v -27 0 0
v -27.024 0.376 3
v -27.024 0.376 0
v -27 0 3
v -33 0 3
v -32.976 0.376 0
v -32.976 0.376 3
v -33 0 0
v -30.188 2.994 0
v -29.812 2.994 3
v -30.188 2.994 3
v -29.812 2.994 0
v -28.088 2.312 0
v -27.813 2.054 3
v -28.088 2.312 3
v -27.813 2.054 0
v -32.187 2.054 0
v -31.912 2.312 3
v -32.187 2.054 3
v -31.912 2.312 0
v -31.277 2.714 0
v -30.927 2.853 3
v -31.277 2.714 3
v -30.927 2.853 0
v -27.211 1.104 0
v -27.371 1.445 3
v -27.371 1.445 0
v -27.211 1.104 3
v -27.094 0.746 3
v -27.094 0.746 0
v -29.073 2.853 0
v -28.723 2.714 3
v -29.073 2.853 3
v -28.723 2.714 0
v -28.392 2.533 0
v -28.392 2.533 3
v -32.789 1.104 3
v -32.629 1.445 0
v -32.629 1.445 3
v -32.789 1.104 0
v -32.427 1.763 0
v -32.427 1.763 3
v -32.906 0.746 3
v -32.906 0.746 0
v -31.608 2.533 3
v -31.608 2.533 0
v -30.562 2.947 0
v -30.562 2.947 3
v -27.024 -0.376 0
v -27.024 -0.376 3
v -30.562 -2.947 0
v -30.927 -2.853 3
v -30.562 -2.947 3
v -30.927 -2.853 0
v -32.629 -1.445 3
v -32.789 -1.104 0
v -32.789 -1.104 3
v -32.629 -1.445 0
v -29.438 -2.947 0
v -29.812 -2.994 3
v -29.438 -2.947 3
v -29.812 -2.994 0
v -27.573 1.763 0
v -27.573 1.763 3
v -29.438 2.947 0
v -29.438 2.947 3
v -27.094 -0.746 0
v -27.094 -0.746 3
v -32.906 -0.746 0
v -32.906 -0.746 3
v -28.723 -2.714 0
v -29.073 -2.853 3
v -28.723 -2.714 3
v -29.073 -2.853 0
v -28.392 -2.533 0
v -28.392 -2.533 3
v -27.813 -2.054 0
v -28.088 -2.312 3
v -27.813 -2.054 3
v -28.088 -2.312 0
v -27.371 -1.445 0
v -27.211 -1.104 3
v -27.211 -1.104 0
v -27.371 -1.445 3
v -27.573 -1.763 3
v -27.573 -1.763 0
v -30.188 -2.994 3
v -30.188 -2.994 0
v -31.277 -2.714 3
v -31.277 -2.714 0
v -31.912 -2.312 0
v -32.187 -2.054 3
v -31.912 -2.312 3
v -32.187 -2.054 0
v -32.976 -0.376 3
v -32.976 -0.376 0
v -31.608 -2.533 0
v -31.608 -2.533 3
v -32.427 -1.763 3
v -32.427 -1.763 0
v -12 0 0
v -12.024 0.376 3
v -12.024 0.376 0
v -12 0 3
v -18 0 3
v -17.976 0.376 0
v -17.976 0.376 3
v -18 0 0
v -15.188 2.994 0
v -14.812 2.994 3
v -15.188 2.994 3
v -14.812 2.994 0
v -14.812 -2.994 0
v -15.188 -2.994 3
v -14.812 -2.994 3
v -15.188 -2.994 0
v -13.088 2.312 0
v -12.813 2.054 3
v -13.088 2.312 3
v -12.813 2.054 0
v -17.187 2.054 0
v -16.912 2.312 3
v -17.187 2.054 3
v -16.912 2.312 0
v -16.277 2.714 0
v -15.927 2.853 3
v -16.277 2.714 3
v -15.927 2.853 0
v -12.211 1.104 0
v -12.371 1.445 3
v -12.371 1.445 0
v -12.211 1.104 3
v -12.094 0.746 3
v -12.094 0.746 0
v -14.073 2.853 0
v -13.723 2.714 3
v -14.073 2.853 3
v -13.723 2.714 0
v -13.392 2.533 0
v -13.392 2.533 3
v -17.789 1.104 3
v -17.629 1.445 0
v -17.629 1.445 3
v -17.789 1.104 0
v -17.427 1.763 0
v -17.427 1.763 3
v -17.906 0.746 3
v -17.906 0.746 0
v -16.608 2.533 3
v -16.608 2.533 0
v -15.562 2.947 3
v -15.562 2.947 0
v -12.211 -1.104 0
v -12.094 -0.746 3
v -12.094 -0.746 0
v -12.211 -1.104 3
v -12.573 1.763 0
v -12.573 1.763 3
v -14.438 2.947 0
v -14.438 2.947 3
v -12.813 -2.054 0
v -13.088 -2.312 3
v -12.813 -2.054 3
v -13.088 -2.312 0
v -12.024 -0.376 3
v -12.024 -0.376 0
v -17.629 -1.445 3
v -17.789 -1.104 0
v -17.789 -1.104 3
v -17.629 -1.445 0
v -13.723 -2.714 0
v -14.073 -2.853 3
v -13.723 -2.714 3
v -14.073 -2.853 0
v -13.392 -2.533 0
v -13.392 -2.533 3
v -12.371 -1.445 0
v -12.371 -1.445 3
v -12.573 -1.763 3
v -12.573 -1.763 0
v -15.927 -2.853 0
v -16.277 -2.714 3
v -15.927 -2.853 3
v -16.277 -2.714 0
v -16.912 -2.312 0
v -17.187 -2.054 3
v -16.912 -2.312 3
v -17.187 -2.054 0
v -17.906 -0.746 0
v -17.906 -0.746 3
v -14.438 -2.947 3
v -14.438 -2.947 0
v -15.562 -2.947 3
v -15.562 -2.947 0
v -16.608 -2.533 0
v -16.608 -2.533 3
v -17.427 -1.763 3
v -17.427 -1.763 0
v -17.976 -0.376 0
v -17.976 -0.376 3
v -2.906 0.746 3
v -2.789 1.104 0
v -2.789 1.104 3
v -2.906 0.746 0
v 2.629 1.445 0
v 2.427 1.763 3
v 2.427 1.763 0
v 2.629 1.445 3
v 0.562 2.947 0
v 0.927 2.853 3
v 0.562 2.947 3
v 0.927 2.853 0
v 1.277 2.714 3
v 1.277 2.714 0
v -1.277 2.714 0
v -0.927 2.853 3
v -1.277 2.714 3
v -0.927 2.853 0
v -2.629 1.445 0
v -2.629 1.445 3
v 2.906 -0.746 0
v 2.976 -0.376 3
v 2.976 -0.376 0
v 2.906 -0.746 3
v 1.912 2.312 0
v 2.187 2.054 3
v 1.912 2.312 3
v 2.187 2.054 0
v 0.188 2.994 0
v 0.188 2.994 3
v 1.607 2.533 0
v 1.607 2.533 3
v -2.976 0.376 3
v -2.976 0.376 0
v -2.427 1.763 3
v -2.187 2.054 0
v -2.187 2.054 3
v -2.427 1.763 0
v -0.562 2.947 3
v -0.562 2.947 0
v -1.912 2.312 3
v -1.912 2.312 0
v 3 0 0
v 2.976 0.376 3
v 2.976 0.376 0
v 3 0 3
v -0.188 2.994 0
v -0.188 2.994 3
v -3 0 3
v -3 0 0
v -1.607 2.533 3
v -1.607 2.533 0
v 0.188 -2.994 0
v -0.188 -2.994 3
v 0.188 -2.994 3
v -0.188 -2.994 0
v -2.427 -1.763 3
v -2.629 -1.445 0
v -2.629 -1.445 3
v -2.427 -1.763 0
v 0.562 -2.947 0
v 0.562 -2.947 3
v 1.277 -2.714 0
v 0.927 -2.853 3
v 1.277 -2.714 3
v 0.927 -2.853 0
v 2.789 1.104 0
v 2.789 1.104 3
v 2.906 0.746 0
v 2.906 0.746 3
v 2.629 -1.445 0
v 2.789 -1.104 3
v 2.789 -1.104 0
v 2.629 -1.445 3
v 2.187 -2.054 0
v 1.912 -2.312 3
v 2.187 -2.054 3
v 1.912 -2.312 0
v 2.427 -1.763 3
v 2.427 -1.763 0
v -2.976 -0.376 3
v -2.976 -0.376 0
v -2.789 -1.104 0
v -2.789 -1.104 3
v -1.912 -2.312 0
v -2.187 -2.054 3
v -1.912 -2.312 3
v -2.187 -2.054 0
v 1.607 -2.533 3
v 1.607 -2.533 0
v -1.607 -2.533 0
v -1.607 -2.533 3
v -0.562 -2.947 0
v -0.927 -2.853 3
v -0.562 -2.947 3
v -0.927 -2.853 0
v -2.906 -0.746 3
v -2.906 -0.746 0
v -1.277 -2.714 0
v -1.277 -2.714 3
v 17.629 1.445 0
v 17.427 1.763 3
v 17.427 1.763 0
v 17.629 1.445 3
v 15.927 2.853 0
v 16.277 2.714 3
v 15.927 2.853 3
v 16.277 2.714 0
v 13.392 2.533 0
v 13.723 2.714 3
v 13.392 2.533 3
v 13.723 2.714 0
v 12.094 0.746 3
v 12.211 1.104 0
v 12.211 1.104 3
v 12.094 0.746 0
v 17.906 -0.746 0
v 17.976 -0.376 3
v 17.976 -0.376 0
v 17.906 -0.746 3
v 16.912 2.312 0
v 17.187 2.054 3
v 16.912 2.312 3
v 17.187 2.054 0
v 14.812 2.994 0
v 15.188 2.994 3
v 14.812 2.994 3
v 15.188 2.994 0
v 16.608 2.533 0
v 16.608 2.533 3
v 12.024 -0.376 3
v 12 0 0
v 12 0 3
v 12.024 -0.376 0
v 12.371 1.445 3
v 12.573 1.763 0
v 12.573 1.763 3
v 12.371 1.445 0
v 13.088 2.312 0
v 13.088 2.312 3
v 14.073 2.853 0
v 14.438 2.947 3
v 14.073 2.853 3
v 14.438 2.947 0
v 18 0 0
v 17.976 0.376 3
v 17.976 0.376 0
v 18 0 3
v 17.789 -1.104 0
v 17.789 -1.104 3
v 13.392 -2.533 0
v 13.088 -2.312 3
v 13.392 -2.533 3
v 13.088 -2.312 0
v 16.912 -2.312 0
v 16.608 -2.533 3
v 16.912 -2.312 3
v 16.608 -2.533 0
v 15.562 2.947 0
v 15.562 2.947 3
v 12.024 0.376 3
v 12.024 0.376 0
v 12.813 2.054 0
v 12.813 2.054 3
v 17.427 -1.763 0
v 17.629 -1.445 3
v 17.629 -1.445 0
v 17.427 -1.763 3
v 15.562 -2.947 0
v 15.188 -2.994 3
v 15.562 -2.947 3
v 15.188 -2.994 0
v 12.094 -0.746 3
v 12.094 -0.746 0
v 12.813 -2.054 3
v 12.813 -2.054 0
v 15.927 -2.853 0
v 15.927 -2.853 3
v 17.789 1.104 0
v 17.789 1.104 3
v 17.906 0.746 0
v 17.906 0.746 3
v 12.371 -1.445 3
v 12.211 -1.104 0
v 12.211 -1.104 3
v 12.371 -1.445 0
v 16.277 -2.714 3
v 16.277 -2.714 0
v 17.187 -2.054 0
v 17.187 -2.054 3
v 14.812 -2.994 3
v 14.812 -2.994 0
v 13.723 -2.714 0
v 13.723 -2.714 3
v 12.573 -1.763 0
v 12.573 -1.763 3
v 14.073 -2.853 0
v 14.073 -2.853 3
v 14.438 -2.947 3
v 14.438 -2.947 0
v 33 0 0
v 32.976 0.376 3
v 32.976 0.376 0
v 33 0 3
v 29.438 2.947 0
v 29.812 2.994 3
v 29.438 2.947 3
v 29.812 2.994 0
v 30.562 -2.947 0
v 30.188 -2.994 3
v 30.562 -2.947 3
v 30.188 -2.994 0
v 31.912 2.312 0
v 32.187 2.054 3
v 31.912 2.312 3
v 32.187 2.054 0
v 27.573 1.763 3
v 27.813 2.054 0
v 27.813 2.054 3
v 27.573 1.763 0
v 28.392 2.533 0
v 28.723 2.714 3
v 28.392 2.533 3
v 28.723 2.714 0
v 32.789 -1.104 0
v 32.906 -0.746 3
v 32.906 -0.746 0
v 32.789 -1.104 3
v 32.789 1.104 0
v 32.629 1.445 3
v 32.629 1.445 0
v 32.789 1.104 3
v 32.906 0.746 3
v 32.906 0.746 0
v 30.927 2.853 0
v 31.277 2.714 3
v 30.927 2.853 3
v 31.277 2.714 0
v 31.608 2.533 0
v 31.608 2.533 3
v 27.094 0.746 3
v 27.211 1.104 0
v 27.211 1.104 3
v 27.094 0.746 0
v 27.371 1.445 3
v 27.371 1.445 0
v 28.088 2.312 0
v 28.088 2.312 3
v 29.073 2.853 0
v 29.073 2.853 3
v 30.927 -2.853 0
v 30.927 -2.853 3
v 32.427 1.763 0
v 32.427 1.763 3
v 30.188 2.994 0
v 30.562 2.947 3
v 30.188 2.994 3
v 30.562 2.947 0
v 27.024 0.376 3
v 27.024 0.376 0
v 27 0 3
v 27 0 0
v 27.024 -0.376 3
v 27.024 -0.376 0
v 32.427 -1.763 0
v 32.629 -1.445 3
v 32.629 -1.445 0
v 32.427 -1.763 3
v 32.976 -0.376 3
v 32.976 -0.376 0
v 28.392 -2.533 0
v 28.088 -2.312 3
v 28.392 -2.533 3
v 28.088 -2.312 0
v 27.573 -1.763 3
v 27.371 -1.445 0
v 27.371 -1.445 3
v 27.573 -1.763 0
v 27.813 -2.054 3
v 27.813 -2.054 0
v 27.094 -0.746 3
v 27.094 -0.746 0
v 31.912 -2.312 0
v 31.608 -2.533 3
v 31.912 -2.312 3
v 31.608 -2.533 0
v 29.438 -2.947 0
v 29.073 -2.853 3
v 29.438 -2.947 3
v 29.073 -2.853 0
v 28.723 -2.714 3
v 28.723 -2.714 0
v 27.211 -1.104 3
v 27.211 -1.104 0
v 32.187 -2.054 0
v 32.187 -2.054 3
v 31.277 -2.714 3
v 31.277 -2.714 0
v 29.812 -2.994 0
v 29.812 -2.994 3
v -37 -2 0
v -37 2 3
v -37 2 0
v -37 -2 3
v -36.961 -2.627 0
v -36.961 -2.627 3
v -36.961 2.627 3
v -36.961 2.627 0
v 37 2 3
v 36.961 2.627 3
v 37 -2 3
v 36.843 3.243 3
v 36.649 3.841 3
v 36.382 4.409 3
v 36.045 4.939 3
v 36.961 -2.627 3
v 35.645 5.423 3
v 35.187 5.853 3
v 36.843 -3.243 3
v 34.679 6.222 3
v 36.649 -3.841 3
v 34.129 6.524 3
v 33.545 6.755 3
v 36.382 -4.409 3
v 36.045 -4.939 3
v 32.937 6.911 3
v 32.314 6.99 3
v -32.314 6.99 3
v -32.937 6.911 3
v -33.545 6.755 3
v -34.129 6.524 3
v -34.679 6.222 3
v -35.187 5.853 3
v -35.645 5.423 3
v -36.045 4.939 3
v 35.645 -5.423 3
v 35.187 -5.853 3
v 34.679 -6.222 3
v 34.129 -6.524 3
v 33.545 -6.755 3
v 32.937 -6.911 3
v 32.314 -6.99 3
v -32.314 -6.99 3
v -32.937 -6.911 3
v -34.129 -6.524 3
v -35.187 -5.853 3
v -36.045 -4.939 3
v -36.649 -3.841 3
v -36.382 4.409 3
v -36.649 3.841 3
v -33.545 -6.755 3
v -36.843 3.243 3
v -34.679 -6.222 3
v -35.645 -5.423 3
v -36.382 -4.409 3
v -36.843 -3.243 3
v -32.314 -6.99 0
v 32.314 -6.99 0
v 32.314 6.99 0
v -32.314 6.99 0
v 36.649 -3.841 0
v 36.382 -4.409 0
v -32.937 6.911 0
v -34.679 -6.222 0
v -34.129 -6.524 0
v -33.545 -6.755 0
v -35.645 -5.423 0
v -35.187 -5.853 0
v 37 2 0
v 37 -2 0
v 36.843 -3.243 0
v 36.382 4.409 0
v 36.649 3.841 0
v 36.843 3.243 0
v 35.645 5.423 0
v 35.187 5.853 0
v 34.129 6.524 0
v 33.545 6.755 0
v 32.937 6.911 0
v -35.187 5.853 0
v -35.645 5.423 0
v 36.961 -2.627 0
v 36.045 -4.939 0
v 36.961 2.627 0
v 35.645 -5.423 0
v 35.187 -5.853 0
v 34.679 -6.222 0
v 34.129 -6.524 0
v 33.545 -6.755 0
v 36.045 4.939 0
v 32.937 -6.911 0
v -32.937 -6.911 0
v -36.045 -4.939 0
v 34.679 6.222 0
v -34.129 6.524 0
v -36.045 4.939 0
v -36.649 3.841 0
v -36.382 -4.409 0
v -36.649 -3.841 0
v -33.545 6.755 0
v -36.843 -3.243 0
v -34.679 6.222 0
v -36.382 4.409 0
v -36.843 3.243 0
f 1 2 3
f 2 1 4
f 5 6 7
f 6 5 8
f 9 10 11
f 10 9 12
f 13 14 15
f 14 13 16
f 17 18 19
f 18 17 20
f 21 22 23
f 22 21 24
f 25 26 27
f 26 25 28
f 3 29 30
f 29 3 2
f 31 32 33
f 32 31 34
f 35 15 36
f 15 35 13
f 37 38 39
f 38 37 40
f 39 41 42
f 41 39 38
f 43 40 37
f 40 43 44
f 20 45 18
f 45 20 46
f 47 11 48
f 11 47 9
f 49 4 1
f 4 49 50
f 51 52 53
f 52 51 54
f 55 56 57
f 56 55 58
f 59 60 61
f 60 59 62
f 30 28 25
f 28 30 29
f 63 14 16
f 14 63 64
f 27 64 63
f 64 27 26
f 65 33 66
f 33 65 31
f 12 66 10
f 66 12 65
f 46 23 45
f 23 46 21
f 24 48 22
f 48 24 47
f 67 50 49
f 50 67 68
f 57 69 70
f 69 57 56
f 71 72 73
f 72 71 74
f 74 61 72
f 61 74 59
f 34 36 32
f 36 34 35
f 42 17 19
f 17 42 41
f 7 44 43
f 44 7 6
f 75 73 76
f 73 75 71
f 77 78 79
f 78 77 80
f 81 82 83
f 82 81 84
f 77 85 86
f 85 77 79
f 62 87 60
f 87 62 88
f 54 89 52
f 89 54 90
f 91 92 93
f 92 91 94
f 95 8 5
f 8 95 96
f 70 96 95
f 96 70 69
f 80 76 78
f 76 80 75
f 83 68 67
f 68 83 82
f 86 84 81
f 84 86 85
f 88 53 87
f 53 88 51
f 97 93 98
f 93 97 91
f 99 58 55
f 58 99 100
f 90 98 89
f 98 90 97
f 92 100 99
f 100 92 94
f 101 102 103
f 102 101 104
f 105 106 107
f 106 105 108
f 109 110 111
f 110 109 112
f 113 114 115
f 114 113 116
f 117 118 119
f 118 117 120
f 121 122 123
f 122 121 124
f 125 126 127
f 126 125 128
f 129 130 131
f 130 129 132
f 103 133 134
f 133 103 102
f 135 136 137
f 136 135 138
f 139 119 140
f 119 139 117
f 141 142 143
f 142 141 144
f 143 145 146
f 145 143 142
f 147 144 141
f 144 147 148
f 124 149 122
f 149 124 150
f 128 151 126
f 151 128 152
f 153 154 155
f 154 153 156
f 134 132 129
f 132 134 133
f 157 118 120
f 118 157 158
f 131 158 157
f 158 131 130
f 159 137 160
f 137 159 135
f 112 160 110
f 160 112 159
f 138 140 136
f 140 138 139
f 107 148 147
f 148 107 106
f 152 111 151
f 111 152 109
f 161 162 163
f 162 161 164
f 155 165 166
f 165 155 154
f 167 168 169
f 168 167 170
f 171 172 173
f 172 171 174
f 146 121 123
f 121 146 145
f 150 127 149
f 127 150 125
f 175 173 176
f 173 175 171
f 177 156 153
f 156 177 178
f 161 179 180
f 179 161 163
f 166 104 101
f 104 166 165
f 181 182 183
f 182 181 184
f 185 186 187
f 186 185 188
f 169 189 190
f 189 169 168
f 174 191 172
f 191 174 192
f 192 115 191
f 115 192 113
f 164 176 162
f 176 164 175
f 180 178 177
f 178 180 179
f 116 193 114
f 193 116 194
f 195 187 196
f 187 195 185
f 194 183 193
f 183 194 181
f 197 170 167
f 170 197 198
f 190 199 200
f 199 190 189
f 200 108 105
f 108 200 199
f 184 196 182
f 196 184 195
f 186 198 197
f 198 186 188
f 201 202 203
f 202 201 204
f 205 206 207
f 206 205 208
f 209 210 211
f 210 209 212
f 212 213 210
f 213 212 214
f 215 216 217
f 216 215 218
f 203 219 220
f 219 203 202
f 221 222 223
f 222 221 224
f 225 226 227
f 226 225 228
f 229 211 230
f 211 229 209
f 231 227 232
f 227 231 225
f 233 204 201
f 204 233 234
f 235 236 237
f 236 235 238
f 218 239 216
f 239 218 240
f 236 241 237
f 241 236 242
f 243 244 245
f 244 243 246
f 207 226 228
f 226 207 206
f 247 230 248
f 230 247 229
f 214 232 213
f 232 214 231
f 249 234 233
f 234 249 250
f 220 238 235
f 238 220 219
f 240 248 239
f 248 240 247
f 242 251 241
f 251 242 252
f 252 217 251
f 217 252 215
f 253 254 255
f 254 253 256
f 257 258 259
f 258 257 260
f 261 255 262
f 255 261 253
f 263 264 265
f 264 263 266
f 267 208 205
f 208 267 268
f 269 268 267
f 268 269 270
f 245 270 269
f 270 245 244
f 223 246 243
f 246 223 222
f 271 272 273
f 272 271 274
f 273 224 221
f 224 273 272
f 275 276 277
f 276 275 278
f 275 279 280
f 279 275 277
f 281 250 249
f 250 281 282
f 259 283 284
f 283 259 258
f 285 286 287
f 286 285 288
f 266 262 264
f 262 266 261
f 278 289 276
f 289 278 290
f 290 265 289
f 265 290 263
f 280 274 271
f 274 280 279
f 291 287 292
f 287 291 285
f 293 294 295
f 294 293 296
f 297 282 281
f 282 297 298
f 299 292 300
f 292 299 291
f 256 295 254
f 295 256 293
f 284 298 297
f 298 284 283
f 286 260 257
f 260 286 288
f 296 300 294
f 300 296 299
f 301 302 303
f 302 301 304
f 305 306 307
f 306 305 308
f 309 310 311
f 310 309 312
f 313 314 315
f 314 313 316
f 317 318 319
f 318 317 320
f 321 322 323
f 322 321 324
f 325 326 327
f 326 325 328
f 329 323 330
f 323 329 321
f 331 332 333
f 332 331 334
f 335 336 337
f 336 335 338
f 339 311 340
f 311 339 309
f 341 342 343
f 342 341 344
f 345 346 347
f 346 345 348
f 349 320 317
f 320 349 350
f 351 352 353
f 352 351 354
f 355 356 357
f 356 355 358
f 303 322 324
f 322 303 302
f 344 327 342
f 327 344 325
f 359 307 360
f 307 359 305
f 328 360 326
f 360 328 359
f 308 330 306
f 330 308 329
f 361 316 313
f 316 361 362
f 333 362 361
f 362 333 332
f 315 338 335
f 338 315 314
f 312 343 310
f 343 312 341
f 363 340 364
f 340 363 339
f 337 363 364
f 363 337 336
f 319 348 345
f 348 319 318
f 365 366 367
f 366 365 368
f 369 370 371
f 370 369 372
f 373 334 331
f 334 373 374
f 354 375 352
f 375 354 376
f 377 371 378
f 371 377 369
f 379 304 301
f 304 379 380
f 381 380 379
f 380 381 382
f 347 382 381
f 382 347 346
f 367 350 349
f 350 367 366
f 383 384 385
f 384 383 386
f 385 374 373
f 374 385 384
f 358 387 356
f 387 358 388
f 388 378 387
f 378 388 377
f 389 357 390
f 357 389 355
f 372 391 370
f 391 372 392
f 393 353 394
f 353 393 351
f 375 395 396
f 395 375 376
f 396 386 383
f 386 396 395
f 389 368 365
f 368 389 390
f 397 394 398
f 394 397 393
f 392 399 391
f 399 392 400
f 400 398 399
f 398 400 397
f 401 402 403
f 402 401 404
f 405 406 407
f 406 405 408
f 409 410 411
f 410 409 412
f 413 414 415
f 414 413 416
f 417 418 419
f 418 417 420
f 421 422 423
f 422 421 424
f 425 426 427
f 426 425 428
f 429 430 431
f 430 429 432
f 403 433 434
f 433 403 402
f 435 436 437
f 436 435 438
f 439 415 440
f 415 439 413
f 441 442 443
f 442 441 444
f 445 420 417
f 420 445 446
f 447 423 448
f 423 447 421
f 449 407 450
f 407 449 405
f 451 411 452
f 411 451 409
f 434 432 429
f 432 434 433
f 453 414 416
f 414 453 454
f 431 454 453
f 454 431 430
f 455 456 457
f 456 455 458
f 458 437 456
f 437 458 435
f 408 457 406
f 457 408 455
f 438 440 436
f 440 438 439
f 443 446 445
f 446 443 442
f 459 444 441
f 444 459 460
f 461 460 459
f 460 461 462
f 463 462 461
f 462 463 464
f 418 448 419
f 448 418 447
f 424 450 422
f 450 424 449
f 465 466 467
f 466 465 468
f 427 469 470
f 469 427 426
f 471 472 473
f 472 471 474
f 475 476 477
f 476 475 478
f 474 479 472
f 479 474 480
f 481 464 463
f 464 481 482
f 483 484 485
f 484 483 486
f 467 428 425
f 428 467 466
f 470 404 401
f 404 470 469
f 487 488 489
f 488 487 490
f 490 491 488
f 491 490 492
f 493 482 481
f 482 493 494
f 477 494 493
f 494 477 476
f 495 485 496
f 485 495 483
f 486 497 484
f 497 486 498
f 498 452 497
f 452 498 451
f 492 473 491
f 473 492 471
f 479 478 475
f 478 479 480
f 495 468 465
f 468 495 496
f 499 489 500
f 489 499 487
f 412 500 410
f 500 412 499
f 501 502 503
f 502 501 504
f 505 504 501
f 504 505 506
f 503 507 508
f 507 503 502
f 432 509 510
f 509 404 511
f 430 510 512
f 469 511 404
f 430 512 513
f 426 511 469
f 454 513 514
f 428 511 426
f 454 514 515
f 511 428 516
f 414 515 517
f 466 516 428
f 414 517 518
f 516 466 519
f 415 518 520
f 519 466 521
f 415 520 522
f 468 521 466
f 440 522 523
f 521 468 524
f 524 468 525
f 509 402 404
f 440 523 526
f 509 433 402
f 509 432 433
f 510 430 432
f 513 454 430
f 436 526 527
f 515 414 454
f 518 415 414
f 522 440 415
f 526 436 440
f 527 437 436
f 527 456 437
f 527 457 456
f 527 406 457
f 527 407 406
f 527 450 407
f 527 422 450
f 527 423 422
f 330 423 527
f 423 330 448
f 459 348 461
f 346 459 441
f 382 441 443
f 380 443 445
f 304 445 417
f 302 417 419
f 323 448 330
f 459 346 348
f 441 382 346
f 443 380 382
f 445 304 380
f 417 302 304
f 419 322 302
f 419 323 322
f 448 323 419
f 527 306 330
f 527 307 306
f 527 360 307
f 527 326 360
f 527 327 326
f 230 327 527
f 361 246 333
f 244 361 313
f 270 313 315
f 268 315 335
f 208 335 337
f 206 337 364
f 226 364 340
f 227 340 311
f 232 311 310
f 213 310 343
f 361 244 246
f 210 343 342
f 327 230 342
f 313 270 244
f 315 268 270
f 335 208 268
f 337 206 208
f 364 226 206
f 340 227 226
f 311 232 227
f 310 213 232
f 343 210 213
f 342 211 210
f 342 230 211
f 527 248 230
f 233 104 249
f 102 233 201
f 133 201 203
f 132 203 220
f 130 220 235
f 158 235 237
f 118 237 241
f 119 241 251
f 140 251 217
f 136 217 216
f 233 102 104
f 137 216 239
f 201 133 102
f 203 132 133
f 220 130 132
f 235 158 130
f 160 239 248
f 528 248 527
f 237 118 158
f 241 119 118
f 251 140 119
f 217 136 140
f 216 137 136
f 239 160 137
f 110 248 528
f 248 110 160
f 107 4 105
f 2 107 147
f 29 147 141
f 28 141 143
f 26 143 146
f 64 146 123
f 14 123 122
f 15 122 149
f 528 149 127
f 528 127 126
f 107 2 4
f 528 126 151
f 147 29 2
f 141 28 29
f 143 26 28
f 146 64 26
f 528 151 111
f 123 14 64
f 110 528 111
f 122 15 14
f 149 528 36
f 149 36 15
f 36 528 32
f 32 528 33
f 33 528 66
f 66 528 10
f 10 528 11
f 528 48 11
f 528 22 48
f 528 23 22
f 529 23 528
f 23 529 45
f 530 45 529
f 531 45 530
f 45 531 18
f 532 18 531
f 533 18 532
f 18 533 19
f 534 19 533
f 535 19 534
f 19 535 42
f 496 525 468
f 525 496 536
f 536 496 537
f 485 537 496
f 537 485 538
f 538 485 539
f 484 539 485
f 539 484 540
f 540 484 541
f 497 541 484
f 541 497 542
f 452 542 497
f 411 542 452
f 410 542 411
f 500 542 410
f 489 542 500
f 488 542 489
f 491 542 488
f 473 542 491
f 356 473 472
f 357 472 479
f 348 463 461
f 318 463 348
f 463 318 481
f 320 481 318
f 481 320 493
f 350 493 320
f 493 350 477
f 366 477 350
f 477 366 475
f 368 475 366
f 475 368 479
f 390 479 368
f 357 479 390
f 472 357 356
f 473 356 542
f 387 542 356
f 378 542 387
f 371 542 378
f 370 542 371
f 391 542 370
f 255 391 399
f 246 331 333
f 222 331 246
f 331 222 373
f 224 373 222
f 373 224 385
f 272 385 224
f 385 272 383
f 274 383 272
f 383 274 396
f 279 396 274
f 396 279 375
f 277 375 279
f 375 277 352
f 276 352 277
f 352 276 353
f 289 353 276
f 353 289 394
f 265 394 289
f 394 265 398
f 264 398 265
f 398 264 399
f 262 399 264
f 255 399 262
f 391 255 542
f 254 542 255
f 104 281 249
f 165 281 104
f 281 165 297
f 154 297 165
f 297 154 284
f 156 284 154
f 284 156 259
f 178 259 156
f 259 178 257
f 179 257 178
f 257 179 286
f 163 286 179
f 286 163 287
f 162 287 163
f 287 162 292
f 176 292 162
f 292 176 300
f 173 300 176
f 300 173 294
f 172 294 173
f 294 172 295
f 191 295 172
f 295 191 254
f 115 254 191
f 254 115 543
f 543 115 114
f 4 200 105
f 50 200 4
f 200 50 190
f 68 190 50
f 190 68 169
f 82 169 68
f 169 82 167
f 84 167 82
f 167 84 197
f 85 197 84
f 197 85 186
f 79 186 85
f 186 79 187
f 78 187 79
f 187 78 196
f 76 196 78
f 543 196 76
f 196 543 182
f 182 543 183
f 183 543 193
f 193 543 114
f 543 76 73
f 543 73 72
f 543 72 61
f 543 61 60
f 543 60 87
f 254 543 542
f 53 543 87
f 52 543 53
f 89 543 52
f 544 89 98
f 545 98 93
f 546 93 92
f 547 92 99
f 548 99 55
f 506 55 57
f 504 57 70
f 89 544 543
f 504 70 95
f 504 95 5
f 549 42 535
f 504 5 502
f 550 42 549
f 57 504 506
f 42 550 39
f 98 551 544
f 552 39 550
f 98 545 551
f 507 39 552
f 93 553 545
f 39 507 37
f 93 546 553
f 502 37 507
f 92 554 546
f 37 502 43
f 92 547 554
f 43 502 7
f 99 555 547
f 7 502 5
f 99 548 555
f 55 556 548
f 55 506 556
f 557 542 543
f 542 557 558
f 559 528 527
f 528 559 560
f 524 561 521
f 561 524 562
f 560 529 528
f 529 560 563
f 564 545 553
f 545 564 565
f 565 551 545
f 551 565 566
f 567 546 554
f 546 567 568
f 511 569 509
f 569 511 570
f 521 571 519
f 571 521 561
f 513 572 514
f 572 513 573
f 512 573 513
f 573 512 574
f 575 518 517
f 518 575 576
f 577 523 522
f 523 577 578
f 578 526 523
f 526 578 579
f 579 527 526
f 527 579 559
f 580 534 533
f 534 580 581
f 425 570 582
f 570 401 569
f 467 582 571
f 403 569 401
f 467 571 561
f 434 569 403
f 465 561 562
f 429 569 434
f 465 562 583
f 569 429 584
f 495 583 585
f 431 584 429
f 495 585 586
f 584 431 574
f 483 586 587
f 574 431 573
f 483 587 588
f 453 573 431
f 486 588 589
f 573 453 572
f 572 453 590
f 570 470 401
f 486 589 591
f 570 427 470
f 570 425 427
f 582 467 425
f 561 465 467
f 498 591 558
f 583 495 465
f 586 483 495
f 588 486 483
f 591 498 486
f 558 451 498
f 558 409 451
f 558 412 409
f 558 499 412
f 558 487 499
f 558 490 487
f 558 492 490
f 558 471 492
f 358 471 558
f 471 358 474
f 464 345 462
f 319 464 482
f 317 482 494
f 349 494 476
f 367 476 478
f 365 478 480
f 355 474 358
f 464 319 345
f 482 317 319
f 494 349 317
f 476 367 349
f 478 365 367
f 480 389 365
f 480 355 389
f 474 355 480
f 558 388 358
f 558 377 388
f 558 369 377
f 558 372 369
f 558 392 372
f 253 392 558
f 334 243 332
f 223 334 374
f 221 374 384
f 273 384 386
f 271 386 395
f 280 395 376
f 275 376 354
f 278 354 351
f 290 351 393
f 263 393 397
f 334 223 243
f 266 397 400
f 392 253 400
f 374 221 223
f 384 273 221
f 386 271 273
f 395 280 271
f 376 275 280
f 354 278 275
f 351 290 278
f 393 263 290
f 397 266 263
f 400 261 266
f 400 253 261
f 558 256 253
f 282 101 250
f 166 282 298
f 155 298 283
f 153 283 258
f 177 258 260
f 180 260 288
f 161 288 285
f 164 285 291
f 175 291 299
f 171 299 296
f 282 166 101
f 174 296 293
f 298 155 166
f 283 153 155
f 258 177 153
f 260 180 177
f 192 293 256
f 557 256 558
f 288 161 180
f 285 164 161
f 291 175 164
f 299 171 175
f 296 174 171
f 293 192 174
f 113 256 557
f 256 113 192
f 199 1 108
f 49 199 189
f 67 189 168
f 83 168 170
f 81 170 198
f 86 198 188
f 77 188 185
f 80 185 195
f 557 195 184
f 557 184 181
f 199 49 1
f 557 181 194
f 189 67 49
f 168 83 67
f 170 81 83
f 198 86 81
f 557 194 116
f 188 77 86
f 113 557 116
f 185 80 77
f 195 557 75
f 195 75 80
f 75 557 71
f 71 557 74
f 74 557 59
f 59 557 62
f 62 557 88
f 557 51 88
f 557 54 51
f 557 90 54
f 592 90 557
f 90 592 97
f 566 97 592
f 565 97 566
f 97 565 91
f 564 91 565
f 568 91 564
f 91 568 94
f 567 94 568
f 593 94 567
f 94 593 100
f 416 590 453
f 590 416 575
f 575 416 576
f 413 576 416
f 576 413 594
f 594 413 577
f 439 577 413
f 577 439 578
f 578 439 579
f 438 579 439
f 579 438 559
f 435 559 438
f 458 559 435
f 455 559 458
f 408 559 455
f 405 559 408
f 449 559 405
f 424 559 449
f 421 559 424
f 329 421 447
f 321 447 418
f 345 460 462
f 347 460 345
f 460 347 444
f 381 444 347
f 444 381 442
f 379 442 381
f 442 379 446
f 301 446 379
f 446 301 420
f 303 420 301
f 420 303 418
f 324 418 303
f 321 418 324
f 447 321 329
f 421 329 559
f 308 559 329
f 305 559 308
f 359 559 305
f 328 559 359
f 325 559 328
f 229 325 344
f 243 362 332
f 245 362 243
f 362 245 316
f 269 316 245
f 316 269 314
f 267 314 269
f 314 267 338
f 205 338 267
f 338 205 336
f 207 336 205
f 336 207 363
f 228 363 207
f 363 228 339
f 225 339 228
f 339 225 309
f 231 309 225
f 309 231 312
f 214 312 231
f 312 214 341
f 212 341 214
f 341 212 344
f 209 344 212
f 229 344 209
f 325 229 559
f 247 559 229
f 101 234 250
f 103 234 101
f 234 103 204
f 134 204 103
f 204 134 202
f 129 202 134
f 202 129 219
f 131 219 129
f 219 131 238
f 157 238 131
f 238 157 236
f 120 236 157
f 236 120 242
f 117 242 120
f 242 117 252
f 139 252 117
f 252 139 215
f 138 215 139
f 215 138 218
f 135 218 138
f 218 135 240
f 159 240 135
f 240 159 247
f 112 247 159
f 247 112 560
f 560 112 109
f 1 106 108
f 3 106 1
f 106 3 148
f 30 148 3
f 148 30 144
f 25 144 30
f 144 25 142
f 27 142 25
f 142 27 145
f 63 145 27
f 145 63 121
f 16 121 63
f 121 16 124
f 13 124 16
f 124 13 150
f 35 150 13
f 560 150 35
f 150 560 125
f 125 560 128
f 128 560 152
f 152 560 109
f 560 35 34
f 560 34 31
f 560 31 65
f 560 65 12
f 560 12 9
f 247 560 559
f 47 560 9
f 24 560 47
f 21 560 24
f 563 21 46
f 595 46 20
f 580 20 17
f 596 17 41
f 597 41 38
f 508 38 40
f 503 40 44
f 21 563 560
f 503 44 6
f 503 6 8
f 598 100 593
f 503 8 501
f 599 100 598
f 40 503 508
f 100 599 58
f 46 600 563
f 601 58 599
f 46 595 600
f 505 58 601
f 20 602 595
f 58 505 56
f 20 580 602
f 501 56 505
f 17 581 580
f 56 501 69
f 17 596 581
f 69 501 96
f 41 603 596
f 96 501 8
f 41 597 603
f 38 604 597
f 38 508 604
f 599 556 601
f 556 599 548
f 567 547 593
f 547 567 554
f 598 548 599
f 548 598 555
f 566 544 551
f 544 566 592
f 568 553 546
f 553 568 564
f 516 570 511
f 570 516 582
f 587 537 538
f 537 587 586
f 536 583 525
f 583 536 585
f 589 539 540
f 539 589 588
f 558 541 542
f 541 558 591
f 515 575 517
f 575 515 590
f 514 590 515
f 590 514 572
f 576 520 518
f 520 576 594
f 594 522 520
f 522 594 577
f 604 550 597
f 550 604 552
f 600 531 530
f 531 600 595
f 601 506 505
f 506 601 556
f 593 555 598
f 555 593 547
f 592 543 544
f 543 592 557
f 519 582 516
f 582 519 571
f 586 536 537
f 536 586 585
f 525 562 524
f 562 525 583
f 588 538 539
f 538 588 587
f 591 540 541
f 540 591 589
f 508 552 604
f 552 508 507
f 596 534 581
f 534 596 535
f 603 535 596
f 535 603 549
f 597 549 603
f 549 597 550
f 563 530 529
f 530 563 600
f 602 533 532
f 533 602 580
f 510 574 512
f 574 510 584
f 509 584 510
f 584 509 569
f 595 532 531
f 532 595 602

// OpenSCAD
// Generated by SolidPython 1.1.3 on 2023-03-12 22:02:07
$fn = 50;


difference() {
	union() {
		translate(v = [0, 0, 0]) {
			rotate(a = [0, 0, 0]) {
				hull() {
					translate(v = [-32.0000000000, 2.0000000000, 0]) {
						rotate(a = [0, 0, 0]) {
							translate(v = [0, 0, 0]) {
								rotate(a = [0, 0, 0]) {
									cylinder(h = 3, r = 5);
								}
							}
						}
					}
					translate(v = [32.0000000000, 2.0000000000, 0]) {
						rotate(a = [0, 0, 0]) {
							translate(v = [0, 0, 0]) {
								rotate(a = [0, 0, 0]) {
									cylinder(h = 3, r = 5);
								}
							}
						}
					}
					translate(v = [-32.0000000000, -2.0000000000, 0]) {
						rotate(a = [0, 0, 0]) {
							translate(v = [0, 0, 0]) {
								rotate(a = [0, 0, 0]) {
									cylinder(h = 3, r = 5);
								}
							}
						}
					}
					translate(v = [32.0000000000, -2.0000000000, 0]) {
						rotate(a = [0, 0, 0]) {
							translate(v = [0, 0, 0]) {
								rotate(a = [0, 0, 0]) {
									cylinder(h = 3, r = 5);
								}
							}
						}
					}
				}
			}
		}
	}
	union() {
		translate(v = [-30.0000000000, 0.0000000000, 0]) {
			rotate(a = [0, 0, 0]) {
				translate(v = [0, 0, -50]) {
					rotate(a = [0, 0, 0]) {
						cylinder(h = 100, r = 3.0000000000);
					}
				}
			}
		}
		translate(v = [-15.0000000000, 0.0000000000, 0]) {
			rotate(a = [0, 0, 0]) {
				translate(v = [0, 0, -50]) {
					rotate(a = [0, 0, 0]) {
						cylinder(h = 100, r = 3.0000000000);
					}
				}
			}
		}
		translate(v = [0.0000000000, 0.0000000000, 0]) {
			rotate(a = [0, 0, 0]) {
				translate(v = [0, 0, -50]) {
					rotate(a = [0, 0, 0]) {
						cylinder(h = 100, r = 3.0000000000);
					}
				}
			}
		}
		translate(v = [15.0000000000, 0.0000000000, 0]) {
			rotate(a = [0, 0, 0]) {
				translate(v = [0, 0, -50]) {
					rotate(a = [0, 0, 0]) {
						cylinder(h = 100, r = 3.0000000000);
					}
				}
			}
		}
		translate(v = [30.0000000000, 0.0000000000, 0]) {
			rotate(a = [0, 0, 0]) {
				translate(v = [0, 0, -50]) {
					rotate(a = [0, 0, 0]) {
						cylinder(h = 100, r = 3.0000000000);
					}
				}
			}
		}
	}
}
/***********************************************
*********      SolidPython code:      **********
************************************************
 
from solid import *
import os
import subprocess

import oomB

import opsc_library_gen

mode = "laser"
#mode = "3d_print"

defined_objects = {}

radius_dict = {}
countersunk_dict = {}


def set_mode(m):
    global mode
    mode = m
    radius_dict['M6'] = 6.5/2
    radius_dict['M3'] = 3.3/2
    if mode == "laser":
        radius_dict['M6'] = 6/2
        radius_dict['M3'] = 3/2

    countersunk_dict['M3'] = {}
    countersunk_dict['M3']['little_rad'] = radius_dict['M3']
    countersunk_dict['M3']['big_rad'] = (5.5+0.6)/2
    if mode == "laser":
        countersunk_dict['M3']['big_rad'] = (4.75+0.6)/2
        countersunk_dict['M3']['little_rad'] = (4.75+0.6)/2

    countersunk_dict['M3']['height'] = 1.7


def opsc_make_object(filename, objects, save_type="none",resolution=50, layers = 1, tilediff = 200, mode="laser", overwrite=True):
    if overwrite or not os.path.exists(filename):
        set_mode(mode)
        save_type = save_type.lower()
        os.makedirs(os.path.dirname(filename), exist_ok=True)
        final_object = opsc_get_object(objects, mode = mode)
        # Save the final object to the specified filename    
        scad_render_to_file(final_object, filename, file_header='$fn = %s;' % resolution, include_orig_code=True)
        if mode == "laser":
            filename_laser = filename.replace(".scad","-flat.scad")
            scad_render_to_file(getLaser(final_object, layers=layers, tilediff=tilediff), filename_laser, file_header='$fn = %s;' % resolution, include_orig_code=True)
            if save_type == "all":
                saveToAll(filename_laser)
            elif save_type == "dxf":
                saveToDxf(filename_laser)
        if save_type == "all":
            saveToAll(filename)
        elif save_type == "dxf":
            saveToDxf(filename)


def opsc_get_object(objects, mode = "laser"):
    # Create the solidpython objects only include the positive objects and if they don't have inclusion or their inclusion is either all or mode
    # Initialize an empty list to store the results
    positive_objects = []

    # Iterate over the "objects" list
    for obj in objects:
        # Check if the current object has a "type" key with a value of "positive"
        if obj['type'] == 'positive':
            # Check if the current object has an "inclusion" key and its value matches "mode",
            # or if the current object does not have an "inclusion" key at all
            if not 'inclusion' in obj or obj['inclusion'] == "all" or obj['inclusion'] == mode:
                # Call the "get_opsc_item" function with the current object as an argument
                opsc_item = get_opsc_item(obj)
                # Add the result to the "positive_objects" list
                positive_objects.append(opsc_item)
# Initialize an empty list to store the results
    negative_objects = []

    # Iterate over the "objects" list
    for obj in objects:
        # Check if the current object has a "type" key with a value of "negative"
        if obj['type'] == 'negative':
            # Check if the current object has an "inclusion" key and its value matches "mode",
            # or if the current object does not have an "inclusion" key at all
            if not 'inclusion' in obj or obj['inclusion'] == "all" or obj['inclusion'] == mode:
                # Call the "get_opsc_item" function with the current object as an argument
                opsc_item = get_opsc_item(obj)
                # Add the result to the "negative_objects" list
                negative_objects.append(opsc_item)
    
    #positive_objects = [get_opsc_item(obj) for obj in objects if obj['type'] == 'positive']
    #negative_objects = [get_opsc_item(obj) for obj in objects if obj['type'] == 'negative']
    # Union the positive objects
    positive_object = union()(*positive_objects)
    # Union the negative objects
    negative_object = union()(*negative_objects)
    # Create the final object by subtracting the negative objects from the positive objects
    return difference()(positive_object, negative_object)

def get_opsc_item(params):
    # A dictionary to map radius string values to numerical values
    #radius_dict = {'small': 5, 'medium': 10, 'large': 15}
    # An array of function names for basic shapes
    basic_shapes = ['cube', 'sphere', 'cylinder']
    
    # An array of function names for other shapes
    other_shapes = ['hole', 'slot', 'rounded_rectangle', 'countersunk']
    


    # Convert radius to r if present, and remove radius from the params dictionary
    if 'radius' in params:
        if isinstance(params['radius'], str):
            # Use the radius_dict to map the radius string value to a numerical value
            params['r'] = radius_dict[params['radius']]
        else:
            params['r'] = params['radius']
        del params['radius']
    

    # Check if the object type is a basic shape
    if params['shape'] in basic_shapes:
        # Remove shape and unexpected dictionary values
        allowed_keys = {'size', 'r', 'r1', 'r2', 'd', 'h', 'rw', 'rh', 'dw', 'dh'}
        shape_params = {k: v for k, v in params.items() if k in allowed_keys}

        # Call the corresponding function for the shape parameter, using ** notation to pass the shape_params dictionary as keyword arguments
        return get_opsc_transform(params,globals()[params['shape']](**shape_params))
    
    # If the object type is not a basic shape, check if it's a defined object or one of the other shapes
    elif params['shape'] in other_shapes:
        # Call the corresponding function for the shape parameter, passing the params dictionary as an argument
        p2 = copy.deepcopy(params)
        p2["pos"] = [0,0,0]
        return get_opsc_transform(params,globals()[params['shape']](p2))
    
    # If the object is not a basic shape or a defined object, try to import it from a .scad file
    else:
        obj = defined_objects[params['shape']]
        return get_opsc_transform(params,obj)

def get_opsc_transform(params, solid_obj):
    # Rotate the object based on the 'rot' field in the params dictionary, or the 'rotX', 'rotY', and 'rotZ' fields if 'rot' is not present
    rot = params.get('rot', [])
    if rot:
        rotX, rotY, rotZ = rot
    else:
        rotX = params.get('rotX', 0)
        rotY = params.get('rotY', 0)
        rotZ = params.get('rotZ', 0)
    solid_obj = rotate([rotX, rotY, rotZ])(solid_obj)

    # Translate the object based on the 'pos' field in the params dictionary, or the 'x', 'y', and 'z' fields if 'pos' is not present
    pos = params.get('pos', [])
    if pos:
        x, y, z = pos
    else:
        x = params.get('x', 0)
        y = params.get('y', 0)
        z = params.get('z', 0)
    solid_obj = translate([x, y, z])(solid_obj)
    return solid_obj


import random

def opsc_easy_array(type, shape, repeats, pos_start, shift_arr, **kwargs):
    for i in range(0,3):
        repeats.append(1)
        pos_start.append(0)
        shift_arr.append(0)
    return_objects = []

    for x in range(0,repeats[0]):
        for y in range(0,repeats[1]):
            for z in range(0,repeats[2]):
                return_objects.append(opsc_easy(type, shape, pos=[pos_start[0]+x*shift_arr[0],pos_start[1]+y*shift_arr[1],pos_start[2]+z*shift_arr[2]], **kwargs))
    return return_objects                



def opsc_easy(type, shape, **kwargs):
    obj = {
        'type': type,
        'shape': shape
    }
    for param in ['size', 'r', 'r1', 'r2', 'd', 'h', 'rw', 'rh', 'dw', 'dh', 'pos', 'x', 'y', 'z', 'rot', 'rotX', 'rotY', 'rotZ', "w", "inclusion"]:
        if param in kwargs:
            obj[param] = kwargs[param]
    return obj

def hole(params):
    p2 = copy.deepcopy(params)  
    # Check if the radius is a string and replace it with the corresponding value from the dictionary
    if isinstance(p2['r'], str):
        p2['r'] = radius_dict[p2['r']]
    
    # Set the height to 100 if not specified
    if 'h' not in p2:
        p2['h'] = 100
        p2["pos"] = [0,0,-50]
    p2["center"] = True
    # Create the cylinder object
    p2["shape"] = "cylinder"
    p2["type"] = "positive"

    return get_opsc_item(p2)

import copy

def countersunk(params):
    p2 = copy.deepcopy(params)
    counter_rad = p2['r']
    p2['r'] = radius_dict[p2['r']]
    hp = copy.deepcopy(p2)
    hp["type"] = "positive"
    hp["shape"] = "hole"
    del hp["rot"]
    hol = get_opsc_item(hp)
    
    cp = copy.deepcopy(p2)
    cp["h"] = countersunk_dict[counter_rad]["height"]
    cp["r2"] = countersunk_dict[counter_rad]["little_rad"]
    cp["r1"] = countersunk_dict[counter_rad]["big_rad"]
    del cp["r"]
    del cp["rot"]
    cp["type"] = "positive"
    cp["shape"] = "cylinder"
    cp["pos"] = [0,0,0]

    top = get_opsc_item(cp)
    return union()(hol,top)



def slot(params):  
    p2 = copy.deepcopy(params) 
    if isinstance(p2['r'], str):
        p2['r'] = radius_dict[p2['r']]
    p2["type"] = "positive"
    p2["shape"] = "hole"
    del p2["rot"]
    p2["pos"] = [0,0,0]
    left = copy.deepcopy(p2)
    right = copy.deepcopy(p2)
    left["pos"][0] = p2["w"] / 2 - p2["r"] 
    
    right["pos"][0] = -p2["w"] / 2 + p2["r"] 
    pass
    leftObj = get_opsc_item(left)
    rightObj = get_opsc_item(right)
    return hull()(leftObj, rightObj)

def rounded_rectangle(params):   
    p2 = copy.deepcopy(params) 
    p2["h"] = p2["size"][2]
    p2["pos"] = p2.get("pos", [0, 0, 0]) 
    p2["type"] = "positive"
    p2["shape"] = "hole"
    p2["pos"] = [0,0,0]
    
    if 'rot' in p2:
        del p2["rot"]   
    if 'r' not in p2:
        p2["r"] = 5 
    tl = copy.deepcopy(p2)
    tr = copy.deepcopy(p2)
    bl = copy.deepcopy(p2)
    br = copy.deepcopy(p2)
    tl["pos"][0] = -(p2["size"][0] - p2["r"]*2)/2
    tl["pos"][1] = (p2["size"][1] - p2["r"]*2)/2
    tr["pos"][0] = (p2["size"][0] - p2["r"]*2)/2
    tr["pos"][1] = (p2["size"][1] - p2["r"]*2)/2
    bl["pos"][0] = -(p2["size"][0] - p2["r"]*2)/2
    bl["pos"][1] = -(p2["size"][1] - p2["r"]*2)/2
    br["pos"][0] = (p2["size"][0] - p2["r"]*2)/2
    br["pos"][1] = -(p2["size"][1] - p2["r"]*2)/2
    del tl["size"]
    del tr["size"]
    del bl["size"]
    del br["size"]
    tlo = get_opsc_item(tl)
    tro = get_opsc_item(tr)
    blo = get_opsc_item(bl)
    bro = get_opsc_item(br)    
    return hull()(tlo, tro, blo, bro)



def import_scad_object(filename):
    # Import the .scad file and convert it to a solidpython object
    #filename = "parts"
    obj = import_scad(filename)
    return obj.main()
    


import os
import solid as solidpython

# A dictionary to store the defined objects


def load_scad_objects():
    opsc_library_gen.gen_library(defined_objects)

import random

def test(num_objects):
    objects = []
    for i in range(num_objects):
        # Choose a random shape
        #shape = random.choice(['cube', 'sphere', 'cylinder', 'hole', 'slot', "rounded_rectangle"])
        shape = random.choice(["rounded_rectangle"])

        # Choose a random type
        type = random.choice(['positive', 'negative'])
        
        # Create an empty object dictionary
        obj = {'shape': shape, 'type': type}
        
        # Set shape-specific parameters
        if obj['shape'] in ['cube']:
            obj['size'] =  [random.uniform(5, 15), random.uniform(5, 15), random.uniform(5, 15)]
        if obj['shape'] in ['rounded_rectangle']:
            obj['size'] =  [random.uniform(5, 15), random.uniform(5, 15), random.uniform(5, 15)]
            obj['r'] = random.uniform(0.5, 5)
        elif obj['shape'] == 'sphere':
            obj['r'] = random.uniform(5, 15)
        elif obj['shape'] in ['cylinder', 'hole']:
            obj['r'] = random.uniform(0.5, 5)
            obj['h'] = random.uniform(5, 15)
        elif obj['shape'] == 'slot':
            obj['r'] = random.uniform(0.5, 5)
            obj['h'] = random.uniform(5, 15)
            obj['w'] = random.uniform(5, 15)
        
        # Set a random position and rotation
        obj['pos'] = [random.uniform(-20, 20), random.uniform(-20, 20), random.uniform(-20, 20)]
        obj['rot'] = [random.uniform(-180, 180), random.uniform(-180, 180), random.uniform(-180, 180)]
        
        # Add the object to the list
        objects.append(obj)
    return objects

####### old file saving
def saveToAll(fileIn):
    saveToDxf(fileIn)
    saveToPng(fileIn)
    saveToStl(fileIn)
    saveToSvg(fileIn)

def saveToDxf(fileIn, fileOut="", copy_to_laser=True):
    if fileOut == "":
        fileOut = fileIn.replace(".scad",".dxf")
    saveToFile(fileIn, fileOut)


    
def saveToPng(fileIn, fileOut="",extra="--render"):
    if fileOut == "":
        fileOut = fileIn.replace(".scad",".png")
    saveToFile(fileIn, fileOut)

def saveToStl(fileIn, fileOut=""):
    if fileOut == "":
        fileOut = fileIn.replace(".scad",".stl")
    saveToFile(fileIn, fileOut)
    
def saveToSvg(fileIn, fileOut=""):
    if fileOut == "":
        fileOut = fileIn.replace(".scad",".svg")
    saveToFile(fileIn, fileOut)

def saveToFile(fileIn, fileOut,extra=""):
    #extra = extra + " --colorscheme Tomorrow"

    launchStr = 'openscad -o "' + fileOut + '"' + extra + ' "' + fileIn + '"'
    if ".png" in fileOut:
        launchStr = launchStr + " --render"
    print("            saveToFile launch string: " + launchStr)
    subprocess.run(launchStr)
    x=0

def getLaser(final_object,start=1.5,layers=1,thickness=3,tilediff=200):
        rv= []

        for x in range(layers):
            rv.append(translate([0,x*tilediff,0])(
                    projection()(
                        intersection()(translate([-500,-500,start+x*thickness])(cube(size=[1000,1000,0.1])),
                            final_object
                        )
                    )
            )
            )
            
        return union()(rv)

set_mode("laser")
load_scad_objects() 
 
************************************************/
